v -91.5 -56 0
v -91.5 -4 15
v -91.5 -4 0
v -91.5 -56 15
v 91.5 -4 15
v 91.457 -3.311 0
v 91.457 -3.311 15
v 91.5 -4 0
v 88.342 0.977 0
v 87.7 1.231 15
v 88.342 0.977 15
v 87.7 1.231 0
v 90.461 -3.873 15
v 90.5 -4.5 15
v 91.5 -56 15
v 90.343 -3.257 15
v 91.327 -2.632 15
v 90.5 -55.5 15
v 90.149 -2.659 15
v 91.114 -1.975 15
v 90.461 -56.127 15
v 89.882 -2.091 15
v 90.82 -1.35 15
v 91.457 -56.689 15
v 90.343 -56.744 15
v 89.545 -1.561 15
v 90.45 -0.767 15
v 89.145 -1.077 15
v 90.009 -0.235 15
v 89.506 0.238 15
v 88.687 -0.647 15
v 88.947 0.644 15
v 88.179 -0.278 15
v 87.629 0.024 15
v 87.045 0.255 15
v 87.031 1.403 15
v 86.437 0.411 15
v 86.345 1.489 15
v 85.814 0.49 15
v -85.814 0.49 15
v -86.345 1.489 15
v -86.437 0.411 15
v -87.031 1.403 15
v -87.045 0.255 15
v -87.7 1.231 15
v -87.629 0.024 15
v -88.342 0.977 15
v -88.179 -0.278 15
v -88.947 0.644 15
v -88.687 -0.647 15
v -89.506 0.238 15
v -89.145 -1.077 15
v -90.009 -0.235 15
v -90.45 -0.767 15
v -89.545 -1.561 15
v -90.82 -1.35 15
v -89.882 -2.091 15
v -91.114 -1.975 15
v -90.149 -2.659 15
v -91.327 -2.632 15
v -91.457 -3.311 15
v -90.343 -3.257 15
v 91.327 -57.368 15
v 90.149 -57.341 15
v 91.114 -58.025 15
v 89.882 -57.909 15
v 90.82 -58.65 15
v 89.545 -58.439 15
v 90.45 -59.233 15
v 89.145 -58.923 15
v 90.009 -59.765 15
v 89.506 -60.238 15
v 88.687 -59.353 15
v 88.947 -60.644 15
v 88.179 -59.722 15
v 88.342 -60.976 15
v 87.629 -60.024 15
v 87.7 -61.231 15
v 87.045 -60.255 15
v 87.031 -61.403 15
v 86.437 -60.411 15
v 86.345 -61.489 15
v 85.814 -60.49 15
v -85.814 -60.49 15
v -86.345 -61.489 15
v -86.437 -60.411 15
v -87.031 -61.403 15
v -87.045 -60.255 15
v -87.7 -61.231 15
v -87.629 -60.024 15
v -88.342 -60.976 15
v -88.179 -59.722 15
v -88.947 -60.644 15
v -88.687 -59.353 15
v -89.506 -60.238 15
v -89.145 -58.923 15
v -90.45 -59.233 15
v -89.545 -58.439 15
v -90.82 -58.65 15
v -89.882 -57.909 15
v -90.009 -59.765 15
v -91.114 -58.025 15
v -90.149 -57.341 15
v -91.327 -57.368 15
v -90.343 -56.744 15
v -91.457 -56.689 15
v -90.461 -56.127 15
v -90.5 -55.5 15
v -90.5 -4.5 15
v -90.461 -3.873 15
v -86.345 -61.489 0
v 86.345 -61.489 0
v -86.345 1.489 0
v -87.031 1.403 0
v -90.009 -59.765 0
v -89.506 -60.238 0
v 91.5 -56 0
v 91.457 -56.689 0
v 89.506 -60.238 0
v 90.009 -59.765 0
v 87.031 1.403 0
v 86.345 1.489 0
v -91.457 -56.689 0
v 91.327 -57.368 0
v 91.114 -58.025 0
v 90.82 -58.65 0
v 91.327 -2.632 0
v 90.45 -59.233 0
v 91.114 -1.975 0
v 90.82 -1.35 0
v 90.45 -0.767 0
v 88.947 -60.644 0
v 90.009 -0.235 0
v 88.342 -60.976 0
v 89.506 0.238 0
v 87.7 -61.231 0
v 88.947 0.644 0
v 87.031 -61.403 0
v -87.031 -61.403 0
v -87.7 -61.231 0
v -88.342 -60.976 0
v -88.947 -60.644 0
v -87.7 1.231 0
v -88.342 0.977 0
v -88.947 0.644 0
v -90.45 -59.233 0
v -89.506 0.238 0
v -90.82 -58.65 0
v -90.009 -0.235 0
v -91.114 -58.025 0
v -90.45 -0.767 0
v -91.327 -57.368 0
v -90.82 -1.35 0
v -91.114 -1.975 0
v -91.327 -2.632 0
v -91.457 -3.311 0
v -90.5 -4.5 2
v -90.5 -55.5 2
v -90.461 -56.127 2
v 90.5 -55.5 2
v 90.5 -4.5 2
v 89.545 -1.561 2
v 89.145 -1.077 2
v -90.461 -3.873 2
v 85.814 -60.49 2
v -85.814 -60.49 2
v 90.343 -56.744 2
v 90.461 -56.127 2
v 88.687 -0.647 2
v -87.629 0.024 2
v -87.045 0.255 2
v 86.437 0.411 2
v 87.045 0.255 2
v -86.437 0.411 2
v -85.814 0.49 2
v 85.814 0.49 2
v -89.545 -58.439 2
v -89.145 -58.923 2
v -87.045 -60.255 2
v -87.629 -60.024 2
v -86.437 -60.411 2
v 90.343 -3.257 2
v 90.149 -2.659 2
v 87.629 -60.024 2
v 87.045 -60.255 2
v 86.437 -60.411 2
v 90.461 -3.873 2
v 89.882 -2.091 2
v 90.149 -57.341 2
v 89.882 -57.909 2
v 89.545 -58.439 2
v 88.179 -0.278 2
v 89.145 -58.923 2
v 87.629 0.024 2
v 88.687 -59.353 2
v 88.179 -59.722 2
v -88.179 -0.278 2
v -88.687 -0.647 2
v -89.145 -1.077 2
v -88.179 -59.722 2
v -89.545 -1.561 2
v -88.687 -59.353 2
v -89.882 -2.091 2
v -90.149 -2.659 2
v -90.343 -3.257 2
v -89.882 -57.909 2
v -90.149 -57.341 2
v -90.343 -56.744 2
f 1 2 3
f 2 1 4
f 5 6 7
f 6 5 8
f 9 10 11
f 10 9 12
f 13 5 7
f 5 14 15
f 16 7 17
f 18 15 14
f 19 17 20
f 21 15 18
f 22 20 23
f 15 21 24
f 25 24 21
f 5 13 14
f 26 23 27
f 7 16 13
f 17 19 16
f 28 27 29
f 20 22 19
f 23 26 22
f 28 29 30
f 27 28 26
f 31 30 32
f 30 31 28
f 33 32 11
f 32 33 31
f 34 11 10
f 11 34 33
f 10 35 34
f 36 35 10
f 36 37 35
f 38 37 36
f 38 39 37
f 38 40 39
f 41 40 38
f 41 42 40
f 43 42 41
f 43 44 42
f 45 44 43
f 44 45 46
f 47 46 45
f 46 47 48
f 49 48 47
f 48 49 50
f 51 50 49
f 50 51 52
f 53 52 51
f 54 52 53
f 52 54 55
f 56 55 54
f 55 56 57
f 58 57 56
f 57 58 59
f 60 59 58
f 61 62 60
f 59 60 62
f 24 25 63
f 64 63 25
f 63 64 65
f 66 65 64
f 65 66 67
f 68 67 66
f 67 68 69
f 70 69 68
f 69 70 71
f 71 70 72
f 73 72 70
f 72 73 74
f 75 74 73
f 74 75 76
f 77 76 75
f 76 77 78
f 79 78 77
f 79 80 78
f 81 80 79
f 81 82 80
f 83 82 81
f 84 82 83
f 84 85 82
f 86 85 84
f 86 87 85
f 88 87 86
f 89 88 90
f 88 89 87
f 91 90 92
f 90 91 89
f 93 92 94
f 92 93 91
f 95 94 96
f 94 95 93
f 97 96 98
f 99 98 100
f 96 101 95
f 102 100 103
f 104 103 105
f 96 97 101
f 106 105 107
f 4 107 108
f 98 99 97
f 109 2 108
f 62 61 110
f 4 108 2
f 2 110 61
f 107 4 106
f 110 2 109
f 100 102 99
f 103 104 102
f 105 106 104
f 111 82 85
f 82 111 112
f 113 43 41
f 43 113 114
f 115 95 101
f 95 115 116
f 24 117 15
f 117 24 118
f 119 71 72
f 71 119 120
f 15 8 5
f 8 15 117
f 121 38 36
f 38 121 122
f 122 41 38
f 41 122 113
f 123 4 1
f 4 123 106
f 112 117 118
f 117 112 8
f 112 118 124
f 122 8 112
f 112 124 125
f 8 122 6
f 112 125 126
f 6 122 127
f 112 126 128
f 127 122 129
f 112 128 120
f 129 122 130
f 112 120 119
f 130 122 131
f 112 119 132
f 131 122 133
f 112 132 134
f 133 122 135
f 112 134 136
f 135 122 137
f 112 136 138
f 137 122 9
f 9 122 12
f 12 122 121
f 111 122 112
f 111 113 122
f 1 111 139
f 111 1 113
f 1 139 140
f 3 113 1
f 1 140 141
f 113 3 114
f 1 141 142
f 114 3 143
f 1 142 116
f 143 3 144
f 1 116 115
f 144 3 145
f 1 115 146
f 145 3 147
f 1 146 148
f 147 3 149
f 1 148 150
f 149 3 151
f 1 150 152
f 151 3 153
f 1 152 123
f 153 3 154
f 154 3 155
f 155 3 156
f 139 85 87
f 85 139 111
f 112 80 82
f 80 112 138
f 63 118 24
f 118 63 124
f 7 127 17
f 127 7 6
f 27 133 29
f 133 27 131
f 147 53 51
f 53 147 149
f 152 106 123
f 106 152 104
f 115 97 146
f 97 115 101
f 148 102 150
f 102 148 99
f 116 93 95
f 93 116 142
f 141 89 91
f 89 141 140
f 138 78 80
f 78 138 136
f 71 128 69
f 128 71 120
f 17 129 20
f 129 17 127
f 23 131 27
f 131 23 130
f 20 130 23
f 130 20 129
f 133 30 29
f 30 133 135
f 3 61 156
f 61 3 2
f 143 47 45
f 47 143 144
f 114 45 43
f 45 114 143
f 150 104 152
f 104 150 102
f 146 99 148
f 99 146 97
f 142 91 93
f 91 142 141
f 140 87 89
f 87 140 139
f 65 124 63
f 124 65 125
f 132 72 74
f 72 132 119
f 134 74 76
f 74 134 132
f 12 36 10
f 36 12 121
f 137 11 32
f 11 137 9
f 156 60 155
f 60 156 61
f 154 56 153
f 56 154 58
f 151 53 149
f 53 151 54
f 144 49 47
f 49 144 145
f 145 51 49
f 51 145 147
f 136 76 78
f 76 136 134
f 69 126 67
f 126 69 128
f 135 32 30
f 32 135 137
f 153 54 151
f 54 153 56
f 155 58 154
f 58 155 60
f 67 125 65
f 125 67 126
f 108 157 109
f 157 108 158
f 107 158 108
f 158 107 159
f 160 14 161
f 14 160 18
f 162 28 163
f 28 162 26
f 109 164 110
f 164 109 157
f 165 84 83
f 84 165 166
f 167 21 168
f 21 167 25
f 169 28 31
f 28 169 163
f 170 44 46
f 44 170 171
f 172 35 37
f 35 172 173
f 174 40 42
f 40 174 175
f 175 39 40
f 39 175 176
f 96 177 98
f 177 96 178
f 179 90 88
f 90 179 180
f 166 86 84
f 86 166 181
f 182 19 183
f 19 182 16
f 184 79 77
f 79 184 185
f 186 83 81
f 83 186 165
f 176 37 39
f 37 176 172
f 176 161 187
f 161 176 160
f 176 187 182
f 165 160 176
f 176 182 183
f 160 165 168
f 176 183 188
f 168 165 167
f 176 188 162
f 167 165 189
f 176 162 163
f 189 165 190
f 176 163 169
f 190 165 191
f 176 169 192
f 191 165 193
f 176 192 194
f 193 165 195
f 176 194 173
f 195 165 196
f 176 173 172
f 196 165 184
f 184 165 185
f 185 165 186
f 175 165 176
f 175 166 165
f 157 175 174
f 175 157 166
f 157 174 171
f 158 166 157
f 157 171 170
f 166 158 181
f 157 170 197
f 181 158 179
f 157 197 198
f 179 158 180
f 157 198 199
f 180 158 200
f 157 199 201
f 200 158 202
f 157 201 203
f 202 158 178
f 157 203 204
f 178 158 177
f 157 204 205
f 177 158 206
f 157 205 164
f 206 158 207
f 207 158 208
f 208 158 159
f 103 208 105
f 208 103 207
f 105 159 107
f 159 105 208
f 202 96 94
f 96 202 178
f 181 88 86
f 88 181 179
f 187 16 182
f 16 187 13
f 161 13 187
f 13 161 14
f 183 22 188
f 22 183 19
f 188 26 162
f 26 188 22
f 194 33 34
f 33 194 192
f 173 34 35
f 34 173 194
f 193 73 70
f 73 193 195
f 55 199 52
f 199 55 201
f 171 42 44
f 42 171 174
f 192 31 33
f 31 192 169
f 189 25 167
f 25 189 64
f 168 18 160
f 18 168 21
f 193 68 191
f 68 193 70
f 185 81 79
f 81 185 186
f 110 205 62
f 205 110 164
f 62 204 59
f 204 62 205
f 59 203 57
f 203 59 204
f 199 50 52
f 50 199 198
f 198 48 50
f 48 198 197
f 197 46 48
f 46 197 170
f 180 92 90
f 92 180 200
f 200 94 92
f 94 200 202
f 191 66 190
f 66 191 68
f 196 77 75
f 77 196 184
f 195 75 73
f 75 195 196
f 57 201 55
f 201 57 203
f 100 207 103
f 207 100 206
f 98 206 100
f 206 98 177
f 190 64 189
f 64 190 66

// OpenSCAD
$fn = 50;


difference() {
	union() {
		translate(v = [0, -30.0000000000, 0]) {
			hull() {
				translate(v = [-86.0000000000, 26.0000000000, 0]) {
					cylinder(h = 15, r = 5.5000000000);
				}
				translate(v = [86.0000000000, 26.0000000000, 0]) {
					cylinder(h = 15, r = 5.5000000000);
				}
				translate(v = [-86.0000000000, -26.0000000000, 0]) {
					cylinder(h = 15, r = 5.5000000000);
				}
				translate(v = [86.0000000000, -26.0000000000, 0]) {
					cylinder(h = 15, r = 5.5000000000);
				}
			}
		}
	}
	union() {
		translate(v = [0, -30.0000000000, 2]) {
			hull() {
				translate(v = [-85.5000000000, 25.5000000000, 0]) {
					cylinder(h = 30, r = 5);
				}
				translate(v = [85.5000000000, 25.5000000000, 0]) {
					cylinder(h = 30, r = 5);
				}
				translate(v = [-85.5000000000, -25.5000000000, 0]) {
					cylinder(h = 30, r = 5);
				}
				translate(v = [85.5000000000, -25.5000000000, 0]) {
					cylinder(h = 30, r = 5);
				}
			}
		}
	}
}
